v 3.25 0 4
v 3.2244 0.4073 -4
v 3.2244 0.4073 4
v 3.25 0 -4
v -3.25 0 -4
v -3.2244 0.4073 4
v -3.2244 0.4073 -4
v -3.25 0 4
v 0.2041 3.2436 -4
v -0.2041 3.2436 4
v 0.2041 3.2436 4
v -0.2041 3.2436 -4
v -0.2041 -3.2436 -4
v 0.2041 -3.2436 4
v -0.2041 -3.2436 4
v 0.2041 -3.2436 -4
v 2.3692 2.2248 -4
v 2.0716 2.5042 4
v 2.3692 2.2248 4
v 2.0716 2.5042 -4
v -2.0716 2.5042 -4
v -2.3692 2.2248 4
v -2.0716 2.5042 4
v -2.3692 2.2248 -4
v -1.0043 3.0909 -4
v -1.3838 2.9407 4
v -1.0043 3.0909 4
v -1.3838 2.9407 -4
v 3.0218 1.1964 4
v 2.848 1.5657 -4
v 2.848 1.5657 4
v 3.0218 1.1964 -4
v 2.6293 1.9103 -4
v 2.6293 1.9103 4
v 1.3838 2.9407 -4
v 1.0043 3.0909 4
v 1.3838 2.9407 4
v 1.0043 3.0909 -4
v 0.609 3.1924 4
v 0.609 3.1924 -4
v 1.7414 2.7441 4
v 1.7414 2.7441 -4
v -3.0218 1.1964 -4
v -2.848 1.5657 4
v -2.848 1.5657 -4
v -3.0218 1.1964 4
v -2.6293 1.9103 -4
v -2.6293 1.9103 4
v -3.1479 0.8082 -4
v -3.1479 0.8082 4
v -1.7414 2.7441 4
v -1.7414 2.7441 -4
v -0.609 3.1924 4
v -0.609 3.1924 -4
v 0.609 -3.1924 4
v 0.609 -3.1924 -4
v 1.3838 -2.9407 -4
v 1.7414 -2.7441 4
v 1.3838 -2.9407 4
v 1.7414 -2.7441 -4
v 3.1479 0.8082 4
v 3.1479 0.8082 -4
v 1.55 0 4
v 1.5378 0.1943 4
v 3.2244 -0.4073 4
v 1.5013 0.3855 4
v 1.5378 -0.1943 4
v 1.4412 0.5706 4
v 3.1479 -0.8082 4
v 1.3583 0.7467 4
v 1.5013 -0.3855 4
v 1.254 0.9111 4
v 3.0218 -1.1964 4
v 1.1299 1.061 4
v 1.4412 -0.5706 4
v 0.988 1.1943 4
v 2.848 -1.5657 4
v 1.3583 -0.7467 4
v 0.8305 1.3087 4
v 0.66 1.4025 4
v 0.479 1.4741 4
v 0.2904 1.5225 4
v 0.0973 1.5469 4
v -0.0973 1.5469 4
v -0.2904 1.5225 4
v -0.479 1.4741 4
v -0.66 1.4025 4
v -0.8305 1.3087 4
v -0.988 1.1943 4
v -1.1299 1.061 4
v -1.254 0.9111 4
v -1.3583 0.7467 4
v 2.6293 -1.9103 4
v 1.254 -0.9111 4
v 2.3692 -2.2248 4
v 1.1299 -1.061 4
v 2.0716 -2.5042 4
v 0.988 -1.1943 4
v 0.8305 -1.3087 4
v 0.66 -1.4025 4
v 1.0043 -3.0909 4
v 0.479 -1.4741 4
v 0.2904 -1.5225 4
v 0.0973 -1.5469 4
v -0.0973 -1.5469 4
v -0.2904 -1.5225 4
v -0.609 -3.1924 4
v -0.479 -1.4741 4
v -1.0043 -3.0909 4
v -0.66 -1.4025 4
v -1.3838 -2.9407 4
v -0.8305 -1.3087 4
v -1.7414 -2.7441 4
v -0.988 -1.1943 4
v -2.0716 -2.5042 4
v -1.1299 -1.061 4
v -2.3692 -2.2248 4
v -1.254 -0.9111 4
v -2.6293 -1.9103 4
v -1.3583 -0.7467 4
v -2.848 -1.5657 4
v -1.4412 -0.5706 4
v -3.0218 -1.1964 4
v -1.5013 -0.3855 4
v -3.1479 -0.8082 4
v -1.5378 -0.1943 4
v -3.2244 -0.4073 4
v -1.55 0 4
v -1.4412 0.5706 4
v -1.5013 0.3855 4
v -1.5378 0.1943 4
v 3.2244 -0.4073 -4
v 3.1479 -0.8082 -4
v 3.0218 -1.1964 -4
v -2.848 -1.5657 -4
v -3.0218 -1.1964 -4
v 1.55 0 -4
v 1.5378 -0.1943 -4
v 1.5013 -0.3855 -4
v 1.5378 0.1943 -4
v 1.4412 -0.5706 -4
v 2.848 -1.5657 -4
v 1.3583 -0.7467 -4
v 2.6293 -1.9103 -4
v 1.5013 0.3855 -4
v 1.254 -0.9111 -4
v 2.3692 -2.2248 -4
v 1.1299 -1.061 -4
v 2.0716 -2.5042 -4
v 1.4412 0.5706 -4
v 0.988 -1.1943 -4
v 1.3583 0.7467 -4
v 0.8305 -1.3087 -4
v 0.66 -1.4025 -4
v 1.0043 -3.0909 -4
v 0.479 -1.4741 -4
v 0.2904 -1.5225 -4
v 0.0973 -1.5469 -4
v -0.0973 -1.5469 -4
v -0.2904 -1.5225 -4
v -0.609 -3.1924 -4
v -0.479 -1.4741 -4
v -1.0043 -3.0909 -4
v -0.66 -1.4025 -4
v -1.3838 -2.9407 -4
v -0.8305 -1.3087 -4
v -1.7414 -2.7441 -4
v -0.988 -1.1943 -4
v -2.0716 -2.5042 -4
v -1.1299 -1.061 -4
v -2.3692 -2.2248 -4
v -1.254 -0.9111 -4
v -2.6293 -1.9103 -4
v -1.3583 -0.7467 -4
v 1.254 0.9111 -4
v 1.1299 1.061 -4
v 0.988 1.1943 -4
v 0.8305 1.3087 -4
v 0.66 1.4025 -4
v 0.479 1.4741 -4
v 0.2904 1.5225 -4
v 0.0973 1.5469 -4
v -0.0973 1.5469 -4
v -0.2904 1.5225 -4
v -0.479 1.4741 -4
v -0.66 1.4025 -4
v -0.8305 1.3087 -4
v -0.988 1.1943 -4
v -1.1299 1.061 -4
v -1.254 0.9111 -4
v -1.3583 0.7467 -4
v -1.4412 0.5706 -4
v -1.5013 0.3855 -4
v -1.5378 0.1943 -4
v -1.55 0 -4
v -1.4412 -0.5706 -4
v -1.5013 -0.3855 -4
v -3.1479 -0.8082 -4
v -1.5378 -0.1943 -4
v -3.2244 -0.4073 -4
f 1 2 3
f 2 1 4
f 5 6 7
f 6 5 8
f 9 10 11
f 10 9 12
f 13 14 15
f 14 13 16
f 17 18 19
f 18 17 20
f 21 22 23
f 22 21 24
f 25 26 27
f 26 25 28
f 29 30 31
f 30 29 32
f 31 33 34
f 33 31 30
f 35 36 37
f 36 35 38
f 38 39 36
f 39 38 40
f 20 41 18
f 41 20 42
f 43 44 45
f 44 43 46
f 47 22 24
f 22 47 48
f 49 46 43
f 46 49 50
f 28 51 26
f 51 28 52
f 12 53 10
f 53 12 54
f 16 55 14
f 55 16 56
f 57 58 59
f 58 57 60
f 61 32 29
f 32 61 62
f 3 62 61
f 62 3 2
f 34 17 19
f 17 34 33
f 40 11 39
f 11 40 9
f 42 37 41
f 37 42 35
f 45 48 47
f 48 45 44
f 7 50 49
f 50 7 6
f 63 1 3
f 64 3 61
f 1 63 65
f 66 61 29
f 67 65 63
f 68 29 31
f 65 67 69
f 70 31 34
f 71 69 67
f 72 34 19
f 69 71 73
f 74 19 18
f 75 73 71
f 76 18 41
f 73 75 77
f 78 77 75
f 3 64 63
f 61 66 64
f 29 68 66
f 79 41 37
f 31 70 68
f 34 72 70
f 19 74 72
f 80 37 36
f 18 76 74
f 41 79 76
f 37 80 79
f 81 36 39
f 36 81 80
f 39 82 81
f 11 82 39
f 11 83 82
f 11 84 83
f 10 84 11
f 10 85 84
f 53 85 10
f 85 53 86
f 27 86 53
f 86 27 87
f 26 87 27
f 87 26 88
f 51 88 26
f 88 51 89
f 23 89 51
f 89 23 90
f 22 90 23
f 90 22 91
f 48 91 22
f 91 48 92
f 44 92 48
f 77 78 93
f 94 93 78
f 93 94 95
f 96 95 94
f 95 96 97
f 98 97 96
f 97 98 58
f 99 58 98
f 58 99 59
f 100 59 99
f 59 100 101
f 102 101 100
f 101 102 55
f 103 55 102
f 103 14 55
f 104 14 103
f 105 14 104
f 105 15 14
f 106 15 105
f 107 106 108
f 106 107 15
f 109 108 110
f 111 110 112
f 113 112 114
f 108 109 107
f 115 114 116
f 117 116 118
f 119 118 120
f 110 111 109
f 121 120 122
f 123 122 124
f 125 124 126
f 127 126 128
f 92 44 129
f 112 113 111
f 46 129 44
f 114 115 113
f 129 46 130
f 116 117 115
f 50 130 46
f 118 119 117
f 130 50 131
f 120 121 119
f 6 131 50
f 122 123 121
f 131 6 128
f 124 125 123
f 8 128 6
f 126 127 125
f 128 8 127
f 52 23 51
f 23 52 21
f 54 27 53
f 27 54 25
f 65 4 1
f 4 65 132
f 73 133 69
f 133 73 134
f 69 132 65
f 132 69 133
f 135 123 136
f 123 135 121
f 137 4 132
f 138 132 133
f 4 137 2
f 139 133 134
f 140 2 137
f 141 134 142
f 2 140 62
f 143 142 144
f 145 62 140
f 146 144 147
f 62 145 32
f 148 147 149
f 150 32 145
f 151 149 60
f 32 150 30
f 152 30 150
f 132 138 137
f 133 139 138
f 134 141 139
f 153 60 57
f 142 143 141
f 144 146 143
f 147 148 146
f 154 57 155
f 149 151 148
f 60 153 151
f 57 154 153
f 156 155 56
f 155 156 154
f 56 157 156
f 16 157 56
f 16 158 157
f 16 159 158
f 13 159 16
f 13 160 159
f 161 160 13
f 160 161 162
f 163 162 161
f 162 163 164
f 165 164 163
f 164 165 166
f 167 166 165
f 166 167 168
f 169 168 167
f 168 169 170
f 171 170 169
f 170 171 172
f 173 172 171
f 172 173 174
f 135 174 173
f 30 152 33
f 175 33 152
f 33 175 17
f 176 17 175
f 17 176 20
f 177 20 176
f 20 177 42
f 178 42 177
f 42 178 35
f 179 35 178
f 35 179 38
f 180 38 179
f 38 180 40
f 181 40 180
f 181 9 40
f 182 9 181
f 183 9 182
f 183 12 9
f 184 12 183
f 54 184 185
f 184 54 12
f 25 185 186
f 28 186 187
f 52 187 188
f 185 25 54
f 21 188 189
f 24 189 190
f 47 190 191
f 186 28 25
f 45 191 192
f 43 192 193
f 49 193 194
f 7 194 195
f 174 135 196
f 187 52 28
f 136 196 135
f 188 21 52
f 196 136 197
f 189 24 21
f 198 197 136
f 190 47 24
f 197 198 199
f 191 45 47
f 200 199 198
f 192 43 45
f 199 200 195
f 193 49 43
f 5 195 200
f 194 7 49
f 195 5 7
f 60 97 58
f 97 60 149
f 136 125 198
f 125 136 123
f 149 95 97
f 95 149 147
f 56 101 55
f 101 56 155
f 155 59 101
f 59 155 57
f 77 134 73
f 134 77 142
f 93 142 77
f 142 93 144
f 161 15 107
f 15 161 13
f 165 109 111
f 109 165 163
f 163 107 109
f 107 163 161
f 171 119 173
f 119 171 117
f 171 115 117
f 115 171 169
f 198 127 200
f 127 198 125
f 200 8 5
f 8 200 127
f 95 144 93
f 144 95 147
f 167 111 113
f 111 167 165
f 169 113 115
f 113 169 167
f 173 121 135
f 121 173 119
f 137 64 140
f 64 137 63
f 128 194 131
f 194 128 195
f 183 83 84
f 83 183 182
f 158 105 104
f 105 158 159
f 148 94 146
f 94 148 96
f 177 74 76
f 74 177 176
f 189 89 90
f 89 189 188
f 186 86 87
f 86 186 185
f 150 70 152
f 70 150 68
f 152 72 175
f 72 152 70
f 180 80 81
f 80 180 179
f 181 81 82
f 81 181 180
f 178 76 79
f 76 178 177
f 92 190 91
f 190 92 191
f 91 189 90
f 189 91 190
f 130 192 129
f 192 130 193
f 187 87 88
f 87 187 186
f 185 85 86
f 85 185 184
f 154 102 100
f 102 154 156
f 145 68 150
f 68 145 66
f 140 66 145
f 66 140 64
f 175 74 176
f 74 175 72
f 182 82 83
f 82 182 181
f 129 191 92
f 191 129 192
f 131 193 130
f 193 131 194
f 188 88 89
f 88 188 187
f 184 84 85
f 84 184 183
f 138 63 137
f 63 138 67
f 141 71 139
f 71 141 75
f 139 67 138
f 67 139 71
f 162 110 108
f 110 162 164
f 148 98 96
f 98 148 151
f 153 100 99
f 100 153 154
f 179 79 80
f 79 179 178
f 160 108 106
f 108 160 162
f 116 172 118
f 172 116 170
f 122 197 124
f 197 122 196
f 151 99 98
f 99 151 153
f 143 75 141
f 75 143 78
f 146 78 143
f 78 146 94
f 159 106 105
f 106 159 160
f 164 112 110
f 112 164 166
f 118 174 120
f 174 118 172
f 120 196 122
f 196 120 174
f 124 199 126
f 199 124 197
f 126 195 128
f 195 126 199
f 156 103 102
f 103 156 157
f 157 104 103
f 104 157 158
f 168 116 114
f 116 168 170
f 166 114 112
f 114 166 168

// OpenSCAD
$fn = 50;


difference() {
	union() {
		translate(v = [0, 0, -4.0000000000]) {
			cylinder(h = 8, r = 3.2500000000);
		}
	}
	union() {
		translate(v = [0, 0, -100.0000000000]) {
			cylinder(h = 200, r = 1.5500000000);
		}
	}
}
